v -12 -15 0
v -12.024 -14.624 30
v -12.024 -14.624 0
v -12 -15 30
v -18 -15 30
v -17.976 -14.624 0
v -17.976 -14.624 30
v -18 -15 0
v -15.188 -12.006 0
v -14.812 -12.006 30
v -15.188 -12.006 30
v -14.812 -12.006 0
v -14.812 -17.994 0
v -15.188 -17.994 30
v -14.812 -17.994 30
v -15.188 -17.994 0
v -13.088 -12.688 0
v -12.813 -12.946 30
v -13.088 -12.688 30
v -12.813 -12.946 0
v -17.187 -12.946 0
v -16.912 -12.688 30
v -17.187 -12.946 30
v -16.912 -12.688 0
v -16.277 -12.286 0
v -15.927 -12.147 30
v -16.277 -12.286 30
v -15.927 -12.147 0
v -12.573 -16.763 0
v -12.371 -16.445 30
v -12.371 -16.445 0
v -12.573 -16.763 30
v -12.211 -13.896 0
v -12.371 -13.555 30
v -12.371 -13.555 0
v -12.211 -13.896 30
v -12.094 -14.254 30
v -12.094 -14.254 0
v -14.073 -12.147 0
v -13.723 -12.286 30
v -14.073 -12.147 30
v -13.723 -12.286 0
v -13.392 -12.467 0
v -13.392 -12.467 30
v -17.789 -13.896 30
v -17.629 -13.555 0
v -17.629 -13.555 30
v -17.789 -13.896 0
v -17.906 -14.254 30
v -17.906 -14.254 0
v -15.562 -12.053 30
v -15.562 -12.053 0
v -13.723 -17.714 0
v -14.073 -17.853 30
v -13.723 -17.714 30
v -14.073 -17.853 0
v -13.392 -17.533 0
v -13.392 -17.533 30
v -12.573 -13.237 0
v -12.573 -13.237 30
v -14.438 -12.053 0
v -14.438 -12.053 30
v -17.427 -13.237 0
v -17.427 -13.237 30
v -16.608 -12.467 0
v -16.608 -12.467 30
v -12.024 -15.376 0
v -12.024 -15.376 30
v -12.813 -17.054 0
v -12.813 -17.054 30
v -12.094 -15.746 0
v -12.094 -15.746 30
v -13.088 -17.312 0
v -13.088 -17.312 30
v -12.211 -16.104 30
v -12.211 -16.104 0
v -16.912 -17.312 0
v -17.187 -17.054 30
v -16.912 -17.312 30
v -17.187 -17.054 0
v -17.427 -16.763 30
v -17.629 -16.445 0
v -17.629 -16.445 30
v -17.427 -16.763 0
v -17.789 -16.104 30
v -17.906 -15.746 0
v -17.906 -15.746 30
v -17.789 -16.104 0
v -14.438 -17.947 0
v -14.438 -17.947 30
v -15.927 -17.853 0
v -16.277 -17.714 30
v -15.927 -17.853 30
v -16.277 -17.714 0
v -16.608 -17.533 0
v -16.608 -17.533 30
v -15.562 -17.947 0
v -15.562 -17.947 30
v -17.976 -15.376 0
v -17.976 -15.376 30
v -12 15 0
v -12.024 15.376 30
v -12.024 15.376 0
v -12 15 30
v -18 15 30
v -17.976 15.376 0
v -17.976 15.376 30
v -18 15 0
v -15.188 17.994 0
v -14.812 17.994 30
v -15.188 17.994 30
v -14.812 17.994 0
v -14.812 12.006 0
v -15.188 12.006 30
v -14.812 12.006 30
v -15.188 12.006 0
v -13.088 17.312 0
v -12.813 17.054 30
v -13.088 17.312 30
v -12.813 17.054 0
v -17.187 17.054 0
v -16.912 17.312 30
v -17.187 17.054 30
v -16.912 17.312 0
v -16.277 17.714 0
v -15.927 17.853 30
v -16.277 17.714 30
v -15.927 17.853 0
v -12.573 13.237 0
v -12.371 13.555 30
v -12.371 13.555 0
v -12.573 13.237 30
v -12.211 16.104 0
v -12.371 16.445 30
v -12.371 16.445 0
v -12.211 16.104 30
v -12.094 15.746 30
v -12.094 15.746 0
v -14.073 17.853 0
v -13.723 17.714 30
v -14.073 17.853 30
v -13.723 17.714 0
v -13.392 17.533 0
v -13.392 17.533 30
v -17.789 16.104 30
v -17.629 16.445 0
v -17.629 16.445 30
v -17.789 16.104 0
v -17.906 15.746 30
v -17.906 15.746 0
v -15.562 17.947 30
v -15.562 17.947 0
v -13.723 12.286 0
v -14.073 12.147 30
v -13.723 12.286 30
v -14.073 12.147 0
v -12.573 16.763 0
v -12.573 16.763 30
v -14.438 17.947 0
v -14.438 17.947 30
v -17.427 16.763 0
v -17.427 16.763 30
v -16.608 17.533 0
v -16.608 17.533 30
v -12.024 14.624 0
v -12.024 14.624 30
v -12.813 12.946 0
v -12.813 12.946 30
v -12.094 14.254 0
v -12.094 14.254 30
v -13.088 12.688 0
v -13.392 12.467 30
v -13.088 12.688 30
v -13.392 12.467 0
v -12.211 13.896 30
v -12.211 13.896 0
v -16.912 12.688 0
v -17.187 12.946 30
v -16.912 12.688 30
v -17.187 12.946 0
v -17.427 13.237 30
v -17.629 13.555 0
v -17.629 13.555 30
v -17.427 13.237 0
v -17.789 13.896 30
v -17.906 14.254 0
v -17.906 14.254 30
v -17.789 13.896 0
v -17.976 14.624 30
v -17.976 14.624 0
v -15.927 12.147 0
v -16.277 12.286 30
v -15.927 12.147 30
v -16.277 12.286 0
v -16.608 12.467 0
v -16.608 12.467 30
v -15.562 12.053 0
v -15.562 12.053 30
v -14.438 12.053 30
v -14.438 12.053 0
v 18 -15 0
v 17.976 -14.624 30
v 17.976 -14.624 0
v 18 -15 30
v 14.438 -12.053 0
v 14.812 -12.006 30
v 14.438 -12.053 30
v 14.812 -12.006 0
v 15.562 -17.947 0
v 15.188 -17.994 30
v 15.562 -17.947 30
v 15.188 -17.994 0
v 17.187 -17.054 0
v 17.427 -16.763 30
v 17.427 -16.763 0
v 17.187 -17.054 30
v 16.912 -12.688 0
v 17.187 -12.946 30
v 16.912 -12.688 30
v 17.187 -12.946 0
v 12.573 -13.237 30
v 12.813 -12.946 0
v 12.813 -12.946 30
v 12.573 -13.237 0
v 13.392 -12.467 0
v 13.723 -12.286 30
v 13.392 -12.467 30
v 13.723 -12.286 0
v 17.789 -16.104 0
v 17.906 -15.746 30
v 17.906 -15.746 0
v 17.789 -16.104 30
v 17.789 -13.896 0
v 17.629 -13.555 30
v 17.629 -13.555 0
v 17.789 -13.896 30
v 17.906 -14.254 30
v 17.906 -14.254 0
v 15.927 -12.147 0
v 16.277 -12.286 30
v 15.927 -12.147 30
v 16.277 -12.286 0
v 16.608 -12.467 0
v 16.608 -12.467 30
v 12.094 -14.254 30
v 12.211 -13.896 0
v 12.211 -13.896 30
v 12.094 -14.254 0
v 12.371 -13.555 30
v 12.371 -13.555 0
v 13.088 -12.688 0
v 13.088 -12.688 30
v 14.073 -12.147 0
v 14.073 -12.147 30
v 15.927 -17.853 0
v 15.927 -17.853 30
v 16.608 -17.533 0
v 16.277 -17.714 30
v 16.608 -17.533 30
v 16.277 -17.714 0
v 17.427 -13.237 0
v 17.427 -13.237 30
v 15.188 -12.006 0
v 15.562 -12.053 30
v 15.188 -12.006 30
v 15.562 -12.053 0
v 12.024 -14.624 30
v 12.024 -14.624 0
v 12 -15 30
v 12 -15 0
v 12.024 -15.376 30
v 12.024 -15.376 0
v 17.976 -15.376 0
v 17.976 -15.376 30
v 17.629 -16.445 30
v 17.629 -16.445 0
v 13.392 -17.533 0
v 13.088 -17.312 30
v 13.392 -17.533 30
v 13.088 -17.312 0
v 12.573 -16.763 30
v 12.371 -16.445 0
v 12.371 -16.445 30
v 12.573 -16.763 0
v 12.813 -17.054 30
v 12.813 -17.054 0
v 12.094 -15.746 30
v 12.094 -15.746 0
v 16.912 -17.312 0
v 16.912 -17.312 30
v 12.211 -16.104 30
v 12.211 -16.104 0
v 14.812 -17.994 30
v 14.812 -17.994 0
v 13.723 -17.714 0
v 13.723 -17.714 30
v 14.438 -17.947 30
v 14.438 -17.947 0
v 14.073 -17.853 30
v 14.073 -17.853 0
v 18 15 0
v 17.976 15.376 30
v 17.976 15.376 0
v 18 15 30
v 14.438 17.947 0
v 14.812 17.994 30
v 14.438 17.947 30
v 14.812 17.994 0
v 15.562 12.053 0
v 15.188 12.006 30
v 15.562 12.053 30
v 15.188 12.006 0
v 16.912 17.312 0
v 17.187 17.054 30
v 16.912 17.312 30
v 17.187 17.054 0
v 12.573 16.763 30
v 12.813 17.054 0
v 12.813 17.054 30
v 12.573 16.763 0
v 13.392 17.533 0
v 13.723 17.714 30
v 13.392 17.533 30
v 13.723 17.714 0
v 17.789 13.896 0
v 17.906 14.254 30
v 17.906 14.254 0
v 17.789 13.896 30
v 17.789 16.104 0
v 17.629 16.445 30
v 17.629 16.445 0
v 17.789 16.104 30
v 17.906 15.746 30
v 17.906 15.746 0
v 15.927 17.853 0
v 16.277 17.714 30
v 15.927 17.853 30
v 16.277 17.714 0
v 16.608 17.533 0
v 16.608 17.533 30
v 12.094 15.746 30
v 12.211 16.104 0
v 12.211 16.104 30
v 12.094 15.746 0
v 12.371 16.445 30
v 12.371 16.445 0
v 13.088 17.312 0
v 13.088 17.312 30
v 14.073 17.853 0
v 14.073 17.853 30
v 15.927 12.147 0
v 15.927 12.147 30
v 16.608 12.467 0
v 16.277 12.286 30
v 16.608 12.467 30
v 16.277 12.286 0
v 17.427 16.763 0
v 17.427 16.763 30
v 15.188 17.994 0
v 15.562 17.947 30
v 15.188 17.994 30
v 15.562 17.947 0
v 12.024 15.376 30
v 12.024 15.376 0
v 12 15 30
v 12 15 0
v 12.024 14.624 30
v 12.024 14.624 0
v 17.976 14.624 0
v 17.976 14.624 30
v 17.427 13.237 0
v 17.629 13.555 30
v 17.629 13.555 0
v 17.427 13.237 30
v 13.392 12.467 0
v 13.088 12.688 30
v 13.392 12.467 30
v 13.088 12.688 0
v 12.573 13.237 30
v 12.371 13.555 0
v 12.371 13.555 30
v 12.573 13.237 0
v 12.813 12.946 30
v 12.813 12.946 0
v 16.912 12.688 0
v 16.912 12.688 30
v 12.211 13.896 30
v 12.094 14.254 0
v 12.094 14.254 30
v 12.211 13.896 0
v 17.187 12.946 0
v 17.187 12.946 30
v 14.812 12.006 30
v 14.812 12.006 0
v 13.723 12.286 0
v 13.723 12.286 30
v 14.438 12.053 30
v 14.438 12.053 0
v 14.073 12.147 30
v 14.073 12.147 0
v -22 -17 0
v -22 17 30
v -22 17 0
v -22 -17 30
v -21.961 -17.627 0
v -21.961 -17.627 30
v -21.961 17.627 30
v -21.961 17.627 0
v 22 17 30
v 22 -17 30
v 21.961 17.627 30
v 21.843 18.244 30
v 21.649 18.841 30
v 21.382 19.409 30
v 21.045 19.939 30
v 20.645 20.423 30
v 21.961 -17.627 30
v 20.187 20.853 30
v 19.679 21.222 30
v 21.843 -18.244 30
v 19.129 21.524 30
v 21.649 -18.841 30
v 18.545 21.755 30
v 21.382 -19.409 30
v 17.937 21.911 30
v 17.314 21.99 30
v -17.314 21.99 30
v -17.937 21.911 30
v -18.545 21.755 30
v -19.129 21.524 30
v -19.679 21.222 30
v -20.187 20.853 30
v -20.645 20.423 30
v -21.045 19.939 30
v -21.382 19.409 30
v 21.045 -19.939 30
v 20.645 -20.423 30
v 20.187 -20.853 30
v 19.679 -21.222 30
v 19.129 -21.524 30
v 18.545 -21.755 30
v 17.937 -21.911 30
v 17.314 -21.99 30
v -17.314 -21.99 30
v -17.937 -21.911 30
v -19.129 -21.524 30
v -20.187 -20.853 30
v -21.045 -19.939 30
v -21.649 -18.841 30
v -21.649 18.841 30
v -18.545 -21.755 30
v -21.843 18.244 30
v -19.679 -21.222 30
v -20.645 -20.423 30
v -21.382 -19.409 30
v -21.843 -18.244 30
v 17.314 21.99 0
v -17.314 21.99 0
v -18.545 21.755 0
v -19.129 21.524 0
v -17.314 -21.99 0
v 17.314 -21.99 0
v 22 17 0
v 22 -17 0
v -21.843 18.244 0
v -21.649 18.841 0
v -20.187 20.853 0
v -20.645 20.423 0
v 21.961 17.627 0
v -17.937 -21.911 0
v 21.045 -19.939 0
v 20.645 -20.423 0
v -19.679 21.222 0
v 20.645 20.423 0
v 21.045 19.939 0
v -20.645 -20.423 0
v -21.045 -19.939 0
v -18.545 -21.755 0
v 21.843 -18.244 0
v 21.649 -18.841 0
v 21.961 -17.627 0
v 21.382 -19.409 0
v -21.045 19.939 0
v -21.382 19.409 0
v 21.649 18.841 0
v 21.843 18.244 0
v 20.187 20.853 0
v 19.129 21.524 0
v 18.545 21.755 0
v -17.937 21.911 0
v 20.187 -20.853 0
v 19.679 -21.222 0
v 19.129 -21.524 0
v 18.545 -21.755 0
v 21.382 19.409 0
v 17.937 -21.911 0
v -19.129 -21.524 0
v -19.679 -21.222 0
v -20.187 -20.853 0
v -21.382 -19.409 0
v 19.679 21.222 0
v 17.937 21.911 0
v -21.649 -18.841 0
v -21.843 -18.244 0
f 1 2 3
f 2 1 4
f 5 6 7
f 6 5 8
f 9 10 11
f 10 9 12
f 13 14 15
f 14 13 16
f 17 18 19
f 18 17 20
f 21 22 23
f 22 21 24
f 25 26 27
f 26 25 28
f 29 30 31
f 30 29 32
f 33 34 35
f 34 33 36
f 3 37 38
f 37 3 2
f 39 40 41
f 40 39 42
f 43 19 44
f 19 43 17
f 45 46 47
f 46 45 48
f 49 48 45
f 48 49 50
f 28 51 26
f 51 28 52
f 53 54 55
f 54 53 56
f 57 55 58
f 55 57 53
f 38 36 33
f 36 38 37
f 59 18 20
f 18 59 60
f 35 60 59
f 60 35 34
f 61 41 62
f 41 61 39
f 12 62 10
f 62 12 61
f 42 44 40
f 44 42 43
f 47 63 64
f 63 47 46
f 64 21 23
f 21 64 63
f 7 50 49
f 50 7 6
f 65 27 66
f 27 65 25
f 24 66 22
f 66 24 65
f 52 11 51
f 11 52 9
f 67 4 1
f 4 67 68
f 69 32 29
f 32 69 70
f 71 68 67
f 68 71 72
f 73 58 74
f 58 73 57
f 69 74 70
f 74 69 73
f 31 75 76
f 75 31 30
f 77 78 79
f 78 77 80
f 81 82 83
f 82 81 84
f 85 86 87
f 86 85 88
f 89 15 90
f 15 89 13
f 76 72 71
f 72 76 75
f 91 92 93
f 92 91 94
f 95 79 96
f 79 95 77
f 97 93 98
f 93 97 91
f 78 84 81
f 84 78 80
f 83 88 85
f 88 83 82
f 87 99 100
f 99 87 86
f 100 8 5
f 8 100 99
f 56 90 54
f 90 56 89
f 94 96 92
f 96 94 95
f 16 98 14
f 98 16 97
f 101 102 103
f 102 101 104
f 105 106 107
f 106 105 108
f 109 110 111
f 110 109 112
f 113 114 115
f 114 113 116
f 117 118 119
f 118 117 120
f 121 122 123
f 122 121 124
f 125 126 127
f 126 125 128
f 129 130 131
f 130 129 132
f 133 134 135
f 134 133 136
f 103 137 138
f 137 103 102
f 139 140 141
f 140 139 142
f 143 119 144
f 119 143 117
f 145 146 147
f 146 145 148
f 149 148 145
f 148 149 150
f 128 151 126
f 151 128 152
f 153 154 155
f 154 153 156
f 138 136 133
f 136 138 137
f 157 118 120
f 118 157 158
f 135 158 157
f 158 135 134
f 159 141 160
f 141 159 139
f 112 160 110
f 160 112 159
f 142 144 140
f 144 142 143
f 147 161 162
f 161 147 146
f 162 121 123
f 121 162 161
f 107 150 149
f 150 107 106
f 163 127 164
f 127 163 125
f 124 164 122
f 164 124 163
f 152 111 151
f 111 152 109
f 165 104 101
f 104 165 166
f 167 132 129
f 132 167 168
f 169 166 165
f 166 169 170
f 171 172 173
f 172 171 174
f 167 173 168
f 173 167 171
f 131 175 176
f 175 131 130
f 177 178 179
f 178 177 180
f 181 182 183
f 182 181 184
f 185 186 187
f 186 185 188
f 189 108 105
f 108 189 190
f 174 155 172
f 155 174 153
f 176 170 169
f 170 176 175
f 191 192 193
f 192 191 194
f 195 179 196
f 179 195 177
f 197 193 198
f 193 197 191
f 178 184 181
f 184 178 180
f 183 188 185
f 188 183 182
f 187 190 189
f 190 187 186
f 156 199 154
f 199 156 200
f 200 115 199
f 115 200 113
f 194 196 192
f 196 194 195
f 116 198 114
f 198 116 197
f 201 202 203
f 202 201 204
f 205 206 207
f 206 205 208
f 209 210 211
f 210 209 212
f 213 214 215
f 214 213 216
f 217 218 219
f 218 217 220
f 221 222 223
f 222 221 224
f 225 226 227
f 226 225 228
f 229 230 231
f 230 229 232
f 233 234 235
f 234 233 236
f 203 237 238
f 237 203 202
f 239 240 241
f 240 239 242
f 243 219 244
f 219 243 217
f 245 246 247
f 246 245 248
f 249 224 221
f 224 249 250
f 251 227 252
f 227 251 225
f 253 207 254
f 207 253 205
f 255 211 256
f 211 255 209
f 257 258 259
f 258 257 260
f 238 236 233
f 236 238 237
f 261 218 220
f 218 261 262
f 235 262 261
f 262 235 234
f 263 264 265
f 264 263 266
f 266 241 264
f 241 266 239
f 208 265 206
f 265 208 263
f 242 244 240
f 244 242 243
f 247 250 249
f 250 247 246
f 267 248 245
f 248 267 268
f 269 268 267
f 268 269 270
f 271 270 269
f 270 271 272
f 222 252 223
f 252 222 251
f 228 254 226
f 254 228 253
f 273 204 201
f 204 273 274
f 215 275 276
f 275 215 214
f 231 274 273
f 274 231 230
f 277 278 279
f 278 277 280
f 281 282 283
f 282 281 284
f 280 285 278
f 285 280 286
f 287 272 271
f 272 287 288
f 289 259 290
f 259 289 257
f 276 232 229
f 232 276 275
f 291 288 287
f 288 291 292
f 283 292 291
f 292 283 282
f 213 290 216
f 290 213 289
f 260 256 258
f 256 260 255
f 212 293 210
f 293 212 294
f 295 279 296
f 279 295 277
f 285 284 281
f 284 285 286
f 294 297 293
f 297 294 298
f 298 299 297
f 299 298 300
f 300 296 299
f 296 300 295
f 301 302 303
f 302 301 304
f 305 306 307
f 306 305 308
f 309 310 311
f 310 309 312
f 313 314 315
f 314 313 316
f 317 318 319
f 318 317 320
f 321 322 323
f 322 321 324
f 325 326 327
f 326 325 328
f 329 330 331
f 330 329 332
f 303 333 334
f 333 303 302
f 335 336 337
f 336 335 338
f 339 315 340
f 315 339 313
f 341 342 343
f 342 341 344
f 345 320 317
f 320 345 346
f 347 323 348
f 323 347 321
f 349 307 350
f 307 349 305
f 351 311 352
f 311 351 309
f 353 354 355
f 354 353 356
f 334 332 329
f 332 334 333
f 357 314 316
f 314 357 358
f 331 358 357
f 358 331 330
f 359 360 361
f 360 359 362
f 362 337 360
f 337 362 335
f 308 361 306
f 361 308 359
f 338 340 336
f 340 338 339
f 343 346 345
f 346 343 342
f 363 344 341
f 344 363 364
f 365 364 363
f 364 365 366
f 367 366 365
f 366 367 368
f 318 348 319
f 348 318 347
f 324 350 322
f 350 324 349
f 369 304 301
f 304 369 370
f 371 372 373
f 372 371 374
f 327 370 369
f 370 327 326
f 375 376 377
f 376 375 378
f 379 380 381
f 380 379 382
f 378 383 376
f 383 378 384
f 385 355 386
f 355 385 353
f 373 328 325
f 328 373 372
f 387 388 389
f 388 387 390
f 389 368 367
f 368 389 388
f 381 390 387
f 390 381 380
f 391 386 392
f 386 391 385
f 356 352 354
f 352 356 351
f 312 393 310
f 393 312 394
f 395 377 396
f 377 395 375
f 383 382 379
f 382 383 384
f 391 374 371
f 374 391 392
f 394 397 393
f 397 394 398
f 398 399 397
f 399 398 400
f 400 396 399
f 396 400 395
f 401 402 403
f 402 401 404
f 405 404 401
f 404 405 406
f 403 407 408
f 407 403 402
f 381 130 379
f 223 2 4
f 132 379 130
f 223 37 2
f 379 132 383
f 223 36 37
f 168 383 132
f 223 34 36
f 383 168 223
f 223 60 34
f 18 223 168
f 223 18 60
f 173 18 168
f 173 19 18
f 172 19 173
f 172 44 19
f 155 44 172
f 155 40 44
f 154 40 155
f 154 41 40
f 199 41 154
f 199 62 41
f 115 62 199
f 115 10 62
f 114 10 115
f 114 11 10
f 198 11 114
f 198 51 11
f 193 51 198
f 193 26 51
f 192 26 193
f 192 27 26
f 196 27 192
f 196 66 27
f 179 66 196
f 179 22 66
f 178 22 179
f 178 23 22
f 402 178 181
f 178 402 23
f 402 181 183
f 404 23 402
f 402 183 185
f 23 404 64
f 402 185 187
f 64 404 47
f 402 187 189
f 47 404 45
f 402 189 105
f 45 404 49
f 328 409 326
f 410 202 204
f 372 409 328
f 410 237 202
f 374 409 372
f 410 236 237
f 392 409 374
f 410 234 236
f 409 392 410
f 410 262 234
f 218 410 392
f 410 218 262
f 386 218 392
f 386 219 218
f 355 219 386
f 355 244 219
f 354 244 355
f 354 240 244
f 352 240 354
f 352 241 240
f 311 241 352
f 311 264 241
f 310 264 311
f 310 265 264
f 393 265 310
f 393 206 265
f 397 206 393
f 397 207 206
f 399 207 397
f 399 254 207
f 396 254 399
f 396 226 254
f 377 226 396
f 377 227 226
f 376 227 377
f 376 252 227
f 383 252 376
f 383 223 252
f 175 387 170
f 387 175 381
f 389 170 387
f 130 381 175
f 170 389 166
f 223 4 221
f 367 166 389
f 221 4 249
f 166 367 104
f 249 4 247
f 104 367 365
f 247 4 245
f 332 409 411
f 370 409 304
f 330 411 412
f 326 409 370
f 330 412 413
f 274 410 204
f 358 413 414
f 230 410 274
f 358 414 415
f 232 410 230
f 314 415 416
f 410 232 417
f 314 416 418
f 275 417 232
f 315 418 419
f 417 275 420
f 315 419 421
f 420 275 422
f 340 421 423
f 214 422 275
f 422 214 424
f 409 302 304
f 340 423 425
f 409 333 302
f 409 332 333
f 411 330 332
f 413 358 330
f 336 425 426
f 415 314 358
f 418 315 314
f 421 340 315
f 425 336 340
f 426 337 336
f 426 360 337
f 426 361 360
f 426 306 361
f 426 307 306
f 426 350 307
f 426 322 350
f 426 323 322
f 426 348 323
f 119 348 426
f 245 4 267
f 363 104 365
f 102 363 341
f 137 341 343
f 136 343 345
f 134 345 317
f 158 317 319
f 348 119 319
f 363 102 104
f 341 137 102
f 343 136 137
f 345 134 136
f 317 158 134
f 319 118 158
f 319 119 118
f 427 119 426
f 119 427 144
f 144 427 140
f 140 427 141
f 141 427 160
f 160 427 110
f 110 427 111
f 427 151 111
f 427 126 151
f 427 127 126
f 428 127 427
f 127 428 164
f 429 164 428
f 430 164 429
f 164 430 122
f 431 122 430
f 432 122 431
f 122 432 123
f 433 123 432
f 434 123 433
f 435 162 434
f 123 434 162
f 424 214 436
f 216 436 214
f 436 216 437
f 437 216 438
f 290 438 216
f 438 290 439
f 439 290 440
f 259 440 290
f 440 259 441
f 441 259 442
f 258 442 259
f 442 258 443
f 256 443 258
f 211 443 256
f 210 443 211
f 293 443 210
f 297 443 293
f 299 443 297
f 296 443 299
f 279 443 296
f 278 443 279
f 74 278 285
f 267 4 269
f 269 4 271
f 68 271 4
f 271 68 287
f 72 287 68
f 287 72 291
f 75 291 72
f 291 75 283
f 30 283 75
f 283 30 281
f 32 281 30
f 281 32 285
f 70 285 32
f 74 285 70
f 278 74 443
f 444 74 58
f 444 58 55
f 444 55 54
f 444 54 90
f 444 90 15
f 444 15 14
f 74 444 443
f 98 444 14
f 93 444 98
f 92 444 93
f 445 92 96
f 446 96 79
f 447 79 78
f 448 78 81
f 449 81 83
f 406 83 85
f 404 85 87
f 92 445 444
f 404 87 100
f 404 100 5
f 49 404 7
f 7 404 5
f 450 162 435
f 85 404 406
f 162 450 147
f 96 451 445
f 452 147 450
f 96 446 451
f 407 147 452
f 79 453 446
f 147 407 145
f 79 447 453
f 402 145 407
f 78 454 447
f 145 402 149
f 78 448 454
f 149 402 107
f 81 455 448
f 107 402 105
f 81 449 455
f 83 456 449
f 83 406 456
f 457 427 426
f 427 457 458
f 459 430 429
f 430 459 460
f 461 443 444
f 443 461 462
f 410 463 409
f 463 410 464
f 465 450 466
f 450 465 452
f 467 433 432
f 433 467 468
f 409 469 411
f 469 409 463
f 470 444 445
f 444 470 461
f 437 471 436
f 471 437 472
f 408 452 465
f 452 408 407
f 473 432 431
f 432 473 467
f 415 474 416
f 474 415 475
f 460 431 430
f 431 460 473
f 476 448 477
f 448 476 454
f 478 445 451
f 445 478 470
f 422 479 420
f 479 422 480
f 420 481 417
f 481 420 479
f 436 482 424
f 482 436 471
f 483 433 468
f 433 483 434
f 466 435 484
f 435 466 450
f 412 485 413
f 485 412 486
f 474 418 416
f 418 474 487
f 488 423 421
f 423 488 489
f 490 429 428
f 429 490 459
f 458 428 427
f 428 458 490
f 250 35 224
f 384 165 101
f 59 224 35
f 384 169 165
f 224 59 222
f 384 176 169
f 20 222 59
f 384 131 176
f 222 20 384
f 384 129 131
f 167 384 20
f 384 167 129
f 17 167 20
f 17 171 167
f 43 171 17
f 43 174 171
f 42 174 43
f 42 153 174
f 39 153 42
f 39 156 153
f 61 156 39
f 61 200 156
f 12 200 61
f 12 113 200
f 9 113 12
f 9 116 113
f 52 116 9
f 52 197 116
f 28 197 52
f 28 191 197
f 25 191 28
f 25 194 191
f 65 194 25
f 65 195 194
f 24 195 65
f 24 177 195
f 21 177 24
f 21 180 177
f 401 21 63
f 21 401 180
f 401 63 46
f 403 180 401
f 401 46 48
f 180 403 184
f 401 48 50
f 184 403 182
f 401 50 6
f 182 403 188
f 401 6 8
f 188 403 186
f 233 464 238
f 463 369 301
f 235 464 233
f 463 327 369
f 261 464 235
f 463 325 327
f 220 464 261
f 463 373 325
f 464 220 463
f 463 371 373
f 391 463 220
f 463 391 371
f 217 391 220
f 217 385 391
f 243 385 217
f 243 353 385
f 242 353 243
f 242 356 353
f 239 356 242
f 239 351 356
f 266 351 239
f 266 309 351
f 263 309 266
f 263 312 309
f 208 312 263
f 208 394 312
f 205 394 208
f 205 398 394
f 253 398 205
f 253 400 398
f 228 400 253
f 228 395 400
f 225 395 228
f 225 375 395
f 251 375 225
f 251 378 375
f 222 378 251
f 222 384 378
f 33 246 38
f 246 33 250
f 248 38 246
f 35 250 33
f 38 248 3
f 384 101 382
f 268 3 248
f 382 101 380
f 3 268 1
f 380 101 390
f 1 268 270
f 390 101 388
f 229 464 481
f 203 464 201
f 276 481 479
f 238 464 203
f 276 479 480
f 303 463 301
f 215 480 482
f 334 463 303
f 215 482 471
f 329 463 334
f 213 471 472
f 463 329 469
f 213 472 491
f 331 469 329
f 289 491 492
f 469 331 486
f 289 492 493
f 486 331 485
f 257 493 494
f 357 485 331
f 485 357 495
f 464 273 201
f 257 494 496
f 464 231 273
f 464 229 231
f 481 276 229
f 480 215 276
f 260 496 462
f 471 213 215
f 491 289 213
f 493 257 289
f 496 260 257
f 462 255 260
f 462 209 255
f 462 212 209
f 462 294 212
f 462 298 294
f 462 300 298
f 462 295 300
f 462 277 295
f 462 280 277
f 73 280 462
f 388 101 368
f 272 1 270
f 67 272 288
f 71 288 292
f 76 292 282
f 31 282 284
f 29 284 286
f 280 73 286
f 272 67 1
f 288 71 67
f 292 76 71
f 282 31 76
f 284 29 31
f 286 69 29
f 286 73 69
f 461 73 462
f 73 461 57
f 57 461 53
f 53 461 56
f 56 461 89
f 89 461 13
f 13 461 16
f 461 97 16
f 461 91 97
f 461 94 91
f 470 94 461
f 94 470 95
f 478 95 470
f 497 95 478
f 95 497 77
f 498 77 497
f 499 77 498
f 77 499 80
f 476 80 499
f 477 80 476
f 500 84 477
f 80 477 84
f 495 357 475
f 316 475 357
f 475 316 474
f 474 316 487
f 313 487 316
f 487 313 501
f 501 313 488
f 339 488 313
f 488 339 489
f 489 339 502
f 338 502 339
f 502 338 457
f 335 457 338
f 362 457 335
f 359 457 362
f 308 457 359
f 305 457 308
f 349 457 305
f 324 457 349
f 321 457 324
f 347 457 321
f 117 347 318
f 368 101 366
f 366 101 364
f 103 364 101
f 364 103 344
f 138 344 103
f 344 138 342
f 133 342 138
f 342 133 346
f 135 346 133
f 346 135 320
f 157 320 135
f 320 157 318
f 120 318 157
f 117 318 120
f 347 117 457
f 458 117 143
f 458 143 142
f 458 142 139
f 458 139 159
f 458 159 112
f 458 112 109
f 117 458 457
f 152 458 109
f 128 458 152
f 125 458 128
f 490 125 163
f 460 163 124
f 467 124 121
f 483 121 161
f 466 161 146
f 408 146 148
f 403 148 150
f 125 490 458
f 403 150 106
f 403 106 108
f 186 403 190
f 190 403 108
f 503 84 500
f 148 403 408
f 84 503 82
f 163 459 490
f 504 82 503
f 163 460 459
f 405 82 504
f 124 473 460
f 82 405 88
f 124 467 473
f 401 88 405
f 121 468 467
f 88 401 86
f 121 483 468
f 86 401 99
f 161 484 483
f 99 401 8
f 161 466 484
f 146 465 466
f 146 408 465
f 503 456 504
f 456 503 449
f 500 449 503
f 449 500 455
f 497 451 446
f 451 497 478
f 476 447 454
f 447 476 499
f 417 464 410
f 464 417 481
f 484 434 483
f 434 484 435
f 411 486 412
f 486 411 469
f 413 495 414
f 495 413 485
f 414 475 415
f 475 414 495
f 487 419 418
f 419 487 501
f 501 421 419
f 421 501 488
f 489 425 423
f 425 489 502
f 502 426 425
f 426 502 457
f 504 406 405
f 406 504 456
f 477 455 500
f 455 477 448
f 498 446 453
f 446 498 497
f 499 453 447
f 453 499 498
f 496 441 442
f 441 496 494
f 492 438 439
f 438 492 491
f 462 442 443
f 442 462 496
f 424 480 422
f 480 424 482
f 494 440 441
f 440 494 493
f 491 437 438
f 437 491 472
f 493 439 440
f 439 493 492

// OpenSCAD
$fn = 50;


difference() {
	union() {
		hull() {
			translate(v = [-17.0000000000, 17.0000000000, 0]) {
				cylinder(h = 30, r = 5);
			}
			translate(v = [17.0000000000, 17.0000000000, 0]) {
				cylinder(h = 30, r = 5);
			}
			translate(v = [-17.0000000000, -17.0000000000, 0]) {
				cylinder(h = 30, r = 5);
			}
			translate(v = [17.0000000000, -17.0000000000, 0]) {
				cylinder(h = 30, r = 5);
			}
		}
	}
	union() {
		translate(v = [-15.0000000000, -15.0000000000, -100.0000000000]) {
			cylinder(h = 200, r = 3.0000000000);
		}
		translate(v = [-15.0000000000, 15.0000000000, -100.0000000000]) {
			cylinder(h = 200, r = 3.0000000000);
		}
		translate(v = [15.0000000000, -15.0000000000, -100.0000000000]) {
			cylinder(h = 200, r = 3.0000000000);
		}
		translate(v = [15.0000000000, 15.0000000000, -100.0000000000]) {
			cylinder(h = 200, r = 3.0000000000);
		}
	}
}
